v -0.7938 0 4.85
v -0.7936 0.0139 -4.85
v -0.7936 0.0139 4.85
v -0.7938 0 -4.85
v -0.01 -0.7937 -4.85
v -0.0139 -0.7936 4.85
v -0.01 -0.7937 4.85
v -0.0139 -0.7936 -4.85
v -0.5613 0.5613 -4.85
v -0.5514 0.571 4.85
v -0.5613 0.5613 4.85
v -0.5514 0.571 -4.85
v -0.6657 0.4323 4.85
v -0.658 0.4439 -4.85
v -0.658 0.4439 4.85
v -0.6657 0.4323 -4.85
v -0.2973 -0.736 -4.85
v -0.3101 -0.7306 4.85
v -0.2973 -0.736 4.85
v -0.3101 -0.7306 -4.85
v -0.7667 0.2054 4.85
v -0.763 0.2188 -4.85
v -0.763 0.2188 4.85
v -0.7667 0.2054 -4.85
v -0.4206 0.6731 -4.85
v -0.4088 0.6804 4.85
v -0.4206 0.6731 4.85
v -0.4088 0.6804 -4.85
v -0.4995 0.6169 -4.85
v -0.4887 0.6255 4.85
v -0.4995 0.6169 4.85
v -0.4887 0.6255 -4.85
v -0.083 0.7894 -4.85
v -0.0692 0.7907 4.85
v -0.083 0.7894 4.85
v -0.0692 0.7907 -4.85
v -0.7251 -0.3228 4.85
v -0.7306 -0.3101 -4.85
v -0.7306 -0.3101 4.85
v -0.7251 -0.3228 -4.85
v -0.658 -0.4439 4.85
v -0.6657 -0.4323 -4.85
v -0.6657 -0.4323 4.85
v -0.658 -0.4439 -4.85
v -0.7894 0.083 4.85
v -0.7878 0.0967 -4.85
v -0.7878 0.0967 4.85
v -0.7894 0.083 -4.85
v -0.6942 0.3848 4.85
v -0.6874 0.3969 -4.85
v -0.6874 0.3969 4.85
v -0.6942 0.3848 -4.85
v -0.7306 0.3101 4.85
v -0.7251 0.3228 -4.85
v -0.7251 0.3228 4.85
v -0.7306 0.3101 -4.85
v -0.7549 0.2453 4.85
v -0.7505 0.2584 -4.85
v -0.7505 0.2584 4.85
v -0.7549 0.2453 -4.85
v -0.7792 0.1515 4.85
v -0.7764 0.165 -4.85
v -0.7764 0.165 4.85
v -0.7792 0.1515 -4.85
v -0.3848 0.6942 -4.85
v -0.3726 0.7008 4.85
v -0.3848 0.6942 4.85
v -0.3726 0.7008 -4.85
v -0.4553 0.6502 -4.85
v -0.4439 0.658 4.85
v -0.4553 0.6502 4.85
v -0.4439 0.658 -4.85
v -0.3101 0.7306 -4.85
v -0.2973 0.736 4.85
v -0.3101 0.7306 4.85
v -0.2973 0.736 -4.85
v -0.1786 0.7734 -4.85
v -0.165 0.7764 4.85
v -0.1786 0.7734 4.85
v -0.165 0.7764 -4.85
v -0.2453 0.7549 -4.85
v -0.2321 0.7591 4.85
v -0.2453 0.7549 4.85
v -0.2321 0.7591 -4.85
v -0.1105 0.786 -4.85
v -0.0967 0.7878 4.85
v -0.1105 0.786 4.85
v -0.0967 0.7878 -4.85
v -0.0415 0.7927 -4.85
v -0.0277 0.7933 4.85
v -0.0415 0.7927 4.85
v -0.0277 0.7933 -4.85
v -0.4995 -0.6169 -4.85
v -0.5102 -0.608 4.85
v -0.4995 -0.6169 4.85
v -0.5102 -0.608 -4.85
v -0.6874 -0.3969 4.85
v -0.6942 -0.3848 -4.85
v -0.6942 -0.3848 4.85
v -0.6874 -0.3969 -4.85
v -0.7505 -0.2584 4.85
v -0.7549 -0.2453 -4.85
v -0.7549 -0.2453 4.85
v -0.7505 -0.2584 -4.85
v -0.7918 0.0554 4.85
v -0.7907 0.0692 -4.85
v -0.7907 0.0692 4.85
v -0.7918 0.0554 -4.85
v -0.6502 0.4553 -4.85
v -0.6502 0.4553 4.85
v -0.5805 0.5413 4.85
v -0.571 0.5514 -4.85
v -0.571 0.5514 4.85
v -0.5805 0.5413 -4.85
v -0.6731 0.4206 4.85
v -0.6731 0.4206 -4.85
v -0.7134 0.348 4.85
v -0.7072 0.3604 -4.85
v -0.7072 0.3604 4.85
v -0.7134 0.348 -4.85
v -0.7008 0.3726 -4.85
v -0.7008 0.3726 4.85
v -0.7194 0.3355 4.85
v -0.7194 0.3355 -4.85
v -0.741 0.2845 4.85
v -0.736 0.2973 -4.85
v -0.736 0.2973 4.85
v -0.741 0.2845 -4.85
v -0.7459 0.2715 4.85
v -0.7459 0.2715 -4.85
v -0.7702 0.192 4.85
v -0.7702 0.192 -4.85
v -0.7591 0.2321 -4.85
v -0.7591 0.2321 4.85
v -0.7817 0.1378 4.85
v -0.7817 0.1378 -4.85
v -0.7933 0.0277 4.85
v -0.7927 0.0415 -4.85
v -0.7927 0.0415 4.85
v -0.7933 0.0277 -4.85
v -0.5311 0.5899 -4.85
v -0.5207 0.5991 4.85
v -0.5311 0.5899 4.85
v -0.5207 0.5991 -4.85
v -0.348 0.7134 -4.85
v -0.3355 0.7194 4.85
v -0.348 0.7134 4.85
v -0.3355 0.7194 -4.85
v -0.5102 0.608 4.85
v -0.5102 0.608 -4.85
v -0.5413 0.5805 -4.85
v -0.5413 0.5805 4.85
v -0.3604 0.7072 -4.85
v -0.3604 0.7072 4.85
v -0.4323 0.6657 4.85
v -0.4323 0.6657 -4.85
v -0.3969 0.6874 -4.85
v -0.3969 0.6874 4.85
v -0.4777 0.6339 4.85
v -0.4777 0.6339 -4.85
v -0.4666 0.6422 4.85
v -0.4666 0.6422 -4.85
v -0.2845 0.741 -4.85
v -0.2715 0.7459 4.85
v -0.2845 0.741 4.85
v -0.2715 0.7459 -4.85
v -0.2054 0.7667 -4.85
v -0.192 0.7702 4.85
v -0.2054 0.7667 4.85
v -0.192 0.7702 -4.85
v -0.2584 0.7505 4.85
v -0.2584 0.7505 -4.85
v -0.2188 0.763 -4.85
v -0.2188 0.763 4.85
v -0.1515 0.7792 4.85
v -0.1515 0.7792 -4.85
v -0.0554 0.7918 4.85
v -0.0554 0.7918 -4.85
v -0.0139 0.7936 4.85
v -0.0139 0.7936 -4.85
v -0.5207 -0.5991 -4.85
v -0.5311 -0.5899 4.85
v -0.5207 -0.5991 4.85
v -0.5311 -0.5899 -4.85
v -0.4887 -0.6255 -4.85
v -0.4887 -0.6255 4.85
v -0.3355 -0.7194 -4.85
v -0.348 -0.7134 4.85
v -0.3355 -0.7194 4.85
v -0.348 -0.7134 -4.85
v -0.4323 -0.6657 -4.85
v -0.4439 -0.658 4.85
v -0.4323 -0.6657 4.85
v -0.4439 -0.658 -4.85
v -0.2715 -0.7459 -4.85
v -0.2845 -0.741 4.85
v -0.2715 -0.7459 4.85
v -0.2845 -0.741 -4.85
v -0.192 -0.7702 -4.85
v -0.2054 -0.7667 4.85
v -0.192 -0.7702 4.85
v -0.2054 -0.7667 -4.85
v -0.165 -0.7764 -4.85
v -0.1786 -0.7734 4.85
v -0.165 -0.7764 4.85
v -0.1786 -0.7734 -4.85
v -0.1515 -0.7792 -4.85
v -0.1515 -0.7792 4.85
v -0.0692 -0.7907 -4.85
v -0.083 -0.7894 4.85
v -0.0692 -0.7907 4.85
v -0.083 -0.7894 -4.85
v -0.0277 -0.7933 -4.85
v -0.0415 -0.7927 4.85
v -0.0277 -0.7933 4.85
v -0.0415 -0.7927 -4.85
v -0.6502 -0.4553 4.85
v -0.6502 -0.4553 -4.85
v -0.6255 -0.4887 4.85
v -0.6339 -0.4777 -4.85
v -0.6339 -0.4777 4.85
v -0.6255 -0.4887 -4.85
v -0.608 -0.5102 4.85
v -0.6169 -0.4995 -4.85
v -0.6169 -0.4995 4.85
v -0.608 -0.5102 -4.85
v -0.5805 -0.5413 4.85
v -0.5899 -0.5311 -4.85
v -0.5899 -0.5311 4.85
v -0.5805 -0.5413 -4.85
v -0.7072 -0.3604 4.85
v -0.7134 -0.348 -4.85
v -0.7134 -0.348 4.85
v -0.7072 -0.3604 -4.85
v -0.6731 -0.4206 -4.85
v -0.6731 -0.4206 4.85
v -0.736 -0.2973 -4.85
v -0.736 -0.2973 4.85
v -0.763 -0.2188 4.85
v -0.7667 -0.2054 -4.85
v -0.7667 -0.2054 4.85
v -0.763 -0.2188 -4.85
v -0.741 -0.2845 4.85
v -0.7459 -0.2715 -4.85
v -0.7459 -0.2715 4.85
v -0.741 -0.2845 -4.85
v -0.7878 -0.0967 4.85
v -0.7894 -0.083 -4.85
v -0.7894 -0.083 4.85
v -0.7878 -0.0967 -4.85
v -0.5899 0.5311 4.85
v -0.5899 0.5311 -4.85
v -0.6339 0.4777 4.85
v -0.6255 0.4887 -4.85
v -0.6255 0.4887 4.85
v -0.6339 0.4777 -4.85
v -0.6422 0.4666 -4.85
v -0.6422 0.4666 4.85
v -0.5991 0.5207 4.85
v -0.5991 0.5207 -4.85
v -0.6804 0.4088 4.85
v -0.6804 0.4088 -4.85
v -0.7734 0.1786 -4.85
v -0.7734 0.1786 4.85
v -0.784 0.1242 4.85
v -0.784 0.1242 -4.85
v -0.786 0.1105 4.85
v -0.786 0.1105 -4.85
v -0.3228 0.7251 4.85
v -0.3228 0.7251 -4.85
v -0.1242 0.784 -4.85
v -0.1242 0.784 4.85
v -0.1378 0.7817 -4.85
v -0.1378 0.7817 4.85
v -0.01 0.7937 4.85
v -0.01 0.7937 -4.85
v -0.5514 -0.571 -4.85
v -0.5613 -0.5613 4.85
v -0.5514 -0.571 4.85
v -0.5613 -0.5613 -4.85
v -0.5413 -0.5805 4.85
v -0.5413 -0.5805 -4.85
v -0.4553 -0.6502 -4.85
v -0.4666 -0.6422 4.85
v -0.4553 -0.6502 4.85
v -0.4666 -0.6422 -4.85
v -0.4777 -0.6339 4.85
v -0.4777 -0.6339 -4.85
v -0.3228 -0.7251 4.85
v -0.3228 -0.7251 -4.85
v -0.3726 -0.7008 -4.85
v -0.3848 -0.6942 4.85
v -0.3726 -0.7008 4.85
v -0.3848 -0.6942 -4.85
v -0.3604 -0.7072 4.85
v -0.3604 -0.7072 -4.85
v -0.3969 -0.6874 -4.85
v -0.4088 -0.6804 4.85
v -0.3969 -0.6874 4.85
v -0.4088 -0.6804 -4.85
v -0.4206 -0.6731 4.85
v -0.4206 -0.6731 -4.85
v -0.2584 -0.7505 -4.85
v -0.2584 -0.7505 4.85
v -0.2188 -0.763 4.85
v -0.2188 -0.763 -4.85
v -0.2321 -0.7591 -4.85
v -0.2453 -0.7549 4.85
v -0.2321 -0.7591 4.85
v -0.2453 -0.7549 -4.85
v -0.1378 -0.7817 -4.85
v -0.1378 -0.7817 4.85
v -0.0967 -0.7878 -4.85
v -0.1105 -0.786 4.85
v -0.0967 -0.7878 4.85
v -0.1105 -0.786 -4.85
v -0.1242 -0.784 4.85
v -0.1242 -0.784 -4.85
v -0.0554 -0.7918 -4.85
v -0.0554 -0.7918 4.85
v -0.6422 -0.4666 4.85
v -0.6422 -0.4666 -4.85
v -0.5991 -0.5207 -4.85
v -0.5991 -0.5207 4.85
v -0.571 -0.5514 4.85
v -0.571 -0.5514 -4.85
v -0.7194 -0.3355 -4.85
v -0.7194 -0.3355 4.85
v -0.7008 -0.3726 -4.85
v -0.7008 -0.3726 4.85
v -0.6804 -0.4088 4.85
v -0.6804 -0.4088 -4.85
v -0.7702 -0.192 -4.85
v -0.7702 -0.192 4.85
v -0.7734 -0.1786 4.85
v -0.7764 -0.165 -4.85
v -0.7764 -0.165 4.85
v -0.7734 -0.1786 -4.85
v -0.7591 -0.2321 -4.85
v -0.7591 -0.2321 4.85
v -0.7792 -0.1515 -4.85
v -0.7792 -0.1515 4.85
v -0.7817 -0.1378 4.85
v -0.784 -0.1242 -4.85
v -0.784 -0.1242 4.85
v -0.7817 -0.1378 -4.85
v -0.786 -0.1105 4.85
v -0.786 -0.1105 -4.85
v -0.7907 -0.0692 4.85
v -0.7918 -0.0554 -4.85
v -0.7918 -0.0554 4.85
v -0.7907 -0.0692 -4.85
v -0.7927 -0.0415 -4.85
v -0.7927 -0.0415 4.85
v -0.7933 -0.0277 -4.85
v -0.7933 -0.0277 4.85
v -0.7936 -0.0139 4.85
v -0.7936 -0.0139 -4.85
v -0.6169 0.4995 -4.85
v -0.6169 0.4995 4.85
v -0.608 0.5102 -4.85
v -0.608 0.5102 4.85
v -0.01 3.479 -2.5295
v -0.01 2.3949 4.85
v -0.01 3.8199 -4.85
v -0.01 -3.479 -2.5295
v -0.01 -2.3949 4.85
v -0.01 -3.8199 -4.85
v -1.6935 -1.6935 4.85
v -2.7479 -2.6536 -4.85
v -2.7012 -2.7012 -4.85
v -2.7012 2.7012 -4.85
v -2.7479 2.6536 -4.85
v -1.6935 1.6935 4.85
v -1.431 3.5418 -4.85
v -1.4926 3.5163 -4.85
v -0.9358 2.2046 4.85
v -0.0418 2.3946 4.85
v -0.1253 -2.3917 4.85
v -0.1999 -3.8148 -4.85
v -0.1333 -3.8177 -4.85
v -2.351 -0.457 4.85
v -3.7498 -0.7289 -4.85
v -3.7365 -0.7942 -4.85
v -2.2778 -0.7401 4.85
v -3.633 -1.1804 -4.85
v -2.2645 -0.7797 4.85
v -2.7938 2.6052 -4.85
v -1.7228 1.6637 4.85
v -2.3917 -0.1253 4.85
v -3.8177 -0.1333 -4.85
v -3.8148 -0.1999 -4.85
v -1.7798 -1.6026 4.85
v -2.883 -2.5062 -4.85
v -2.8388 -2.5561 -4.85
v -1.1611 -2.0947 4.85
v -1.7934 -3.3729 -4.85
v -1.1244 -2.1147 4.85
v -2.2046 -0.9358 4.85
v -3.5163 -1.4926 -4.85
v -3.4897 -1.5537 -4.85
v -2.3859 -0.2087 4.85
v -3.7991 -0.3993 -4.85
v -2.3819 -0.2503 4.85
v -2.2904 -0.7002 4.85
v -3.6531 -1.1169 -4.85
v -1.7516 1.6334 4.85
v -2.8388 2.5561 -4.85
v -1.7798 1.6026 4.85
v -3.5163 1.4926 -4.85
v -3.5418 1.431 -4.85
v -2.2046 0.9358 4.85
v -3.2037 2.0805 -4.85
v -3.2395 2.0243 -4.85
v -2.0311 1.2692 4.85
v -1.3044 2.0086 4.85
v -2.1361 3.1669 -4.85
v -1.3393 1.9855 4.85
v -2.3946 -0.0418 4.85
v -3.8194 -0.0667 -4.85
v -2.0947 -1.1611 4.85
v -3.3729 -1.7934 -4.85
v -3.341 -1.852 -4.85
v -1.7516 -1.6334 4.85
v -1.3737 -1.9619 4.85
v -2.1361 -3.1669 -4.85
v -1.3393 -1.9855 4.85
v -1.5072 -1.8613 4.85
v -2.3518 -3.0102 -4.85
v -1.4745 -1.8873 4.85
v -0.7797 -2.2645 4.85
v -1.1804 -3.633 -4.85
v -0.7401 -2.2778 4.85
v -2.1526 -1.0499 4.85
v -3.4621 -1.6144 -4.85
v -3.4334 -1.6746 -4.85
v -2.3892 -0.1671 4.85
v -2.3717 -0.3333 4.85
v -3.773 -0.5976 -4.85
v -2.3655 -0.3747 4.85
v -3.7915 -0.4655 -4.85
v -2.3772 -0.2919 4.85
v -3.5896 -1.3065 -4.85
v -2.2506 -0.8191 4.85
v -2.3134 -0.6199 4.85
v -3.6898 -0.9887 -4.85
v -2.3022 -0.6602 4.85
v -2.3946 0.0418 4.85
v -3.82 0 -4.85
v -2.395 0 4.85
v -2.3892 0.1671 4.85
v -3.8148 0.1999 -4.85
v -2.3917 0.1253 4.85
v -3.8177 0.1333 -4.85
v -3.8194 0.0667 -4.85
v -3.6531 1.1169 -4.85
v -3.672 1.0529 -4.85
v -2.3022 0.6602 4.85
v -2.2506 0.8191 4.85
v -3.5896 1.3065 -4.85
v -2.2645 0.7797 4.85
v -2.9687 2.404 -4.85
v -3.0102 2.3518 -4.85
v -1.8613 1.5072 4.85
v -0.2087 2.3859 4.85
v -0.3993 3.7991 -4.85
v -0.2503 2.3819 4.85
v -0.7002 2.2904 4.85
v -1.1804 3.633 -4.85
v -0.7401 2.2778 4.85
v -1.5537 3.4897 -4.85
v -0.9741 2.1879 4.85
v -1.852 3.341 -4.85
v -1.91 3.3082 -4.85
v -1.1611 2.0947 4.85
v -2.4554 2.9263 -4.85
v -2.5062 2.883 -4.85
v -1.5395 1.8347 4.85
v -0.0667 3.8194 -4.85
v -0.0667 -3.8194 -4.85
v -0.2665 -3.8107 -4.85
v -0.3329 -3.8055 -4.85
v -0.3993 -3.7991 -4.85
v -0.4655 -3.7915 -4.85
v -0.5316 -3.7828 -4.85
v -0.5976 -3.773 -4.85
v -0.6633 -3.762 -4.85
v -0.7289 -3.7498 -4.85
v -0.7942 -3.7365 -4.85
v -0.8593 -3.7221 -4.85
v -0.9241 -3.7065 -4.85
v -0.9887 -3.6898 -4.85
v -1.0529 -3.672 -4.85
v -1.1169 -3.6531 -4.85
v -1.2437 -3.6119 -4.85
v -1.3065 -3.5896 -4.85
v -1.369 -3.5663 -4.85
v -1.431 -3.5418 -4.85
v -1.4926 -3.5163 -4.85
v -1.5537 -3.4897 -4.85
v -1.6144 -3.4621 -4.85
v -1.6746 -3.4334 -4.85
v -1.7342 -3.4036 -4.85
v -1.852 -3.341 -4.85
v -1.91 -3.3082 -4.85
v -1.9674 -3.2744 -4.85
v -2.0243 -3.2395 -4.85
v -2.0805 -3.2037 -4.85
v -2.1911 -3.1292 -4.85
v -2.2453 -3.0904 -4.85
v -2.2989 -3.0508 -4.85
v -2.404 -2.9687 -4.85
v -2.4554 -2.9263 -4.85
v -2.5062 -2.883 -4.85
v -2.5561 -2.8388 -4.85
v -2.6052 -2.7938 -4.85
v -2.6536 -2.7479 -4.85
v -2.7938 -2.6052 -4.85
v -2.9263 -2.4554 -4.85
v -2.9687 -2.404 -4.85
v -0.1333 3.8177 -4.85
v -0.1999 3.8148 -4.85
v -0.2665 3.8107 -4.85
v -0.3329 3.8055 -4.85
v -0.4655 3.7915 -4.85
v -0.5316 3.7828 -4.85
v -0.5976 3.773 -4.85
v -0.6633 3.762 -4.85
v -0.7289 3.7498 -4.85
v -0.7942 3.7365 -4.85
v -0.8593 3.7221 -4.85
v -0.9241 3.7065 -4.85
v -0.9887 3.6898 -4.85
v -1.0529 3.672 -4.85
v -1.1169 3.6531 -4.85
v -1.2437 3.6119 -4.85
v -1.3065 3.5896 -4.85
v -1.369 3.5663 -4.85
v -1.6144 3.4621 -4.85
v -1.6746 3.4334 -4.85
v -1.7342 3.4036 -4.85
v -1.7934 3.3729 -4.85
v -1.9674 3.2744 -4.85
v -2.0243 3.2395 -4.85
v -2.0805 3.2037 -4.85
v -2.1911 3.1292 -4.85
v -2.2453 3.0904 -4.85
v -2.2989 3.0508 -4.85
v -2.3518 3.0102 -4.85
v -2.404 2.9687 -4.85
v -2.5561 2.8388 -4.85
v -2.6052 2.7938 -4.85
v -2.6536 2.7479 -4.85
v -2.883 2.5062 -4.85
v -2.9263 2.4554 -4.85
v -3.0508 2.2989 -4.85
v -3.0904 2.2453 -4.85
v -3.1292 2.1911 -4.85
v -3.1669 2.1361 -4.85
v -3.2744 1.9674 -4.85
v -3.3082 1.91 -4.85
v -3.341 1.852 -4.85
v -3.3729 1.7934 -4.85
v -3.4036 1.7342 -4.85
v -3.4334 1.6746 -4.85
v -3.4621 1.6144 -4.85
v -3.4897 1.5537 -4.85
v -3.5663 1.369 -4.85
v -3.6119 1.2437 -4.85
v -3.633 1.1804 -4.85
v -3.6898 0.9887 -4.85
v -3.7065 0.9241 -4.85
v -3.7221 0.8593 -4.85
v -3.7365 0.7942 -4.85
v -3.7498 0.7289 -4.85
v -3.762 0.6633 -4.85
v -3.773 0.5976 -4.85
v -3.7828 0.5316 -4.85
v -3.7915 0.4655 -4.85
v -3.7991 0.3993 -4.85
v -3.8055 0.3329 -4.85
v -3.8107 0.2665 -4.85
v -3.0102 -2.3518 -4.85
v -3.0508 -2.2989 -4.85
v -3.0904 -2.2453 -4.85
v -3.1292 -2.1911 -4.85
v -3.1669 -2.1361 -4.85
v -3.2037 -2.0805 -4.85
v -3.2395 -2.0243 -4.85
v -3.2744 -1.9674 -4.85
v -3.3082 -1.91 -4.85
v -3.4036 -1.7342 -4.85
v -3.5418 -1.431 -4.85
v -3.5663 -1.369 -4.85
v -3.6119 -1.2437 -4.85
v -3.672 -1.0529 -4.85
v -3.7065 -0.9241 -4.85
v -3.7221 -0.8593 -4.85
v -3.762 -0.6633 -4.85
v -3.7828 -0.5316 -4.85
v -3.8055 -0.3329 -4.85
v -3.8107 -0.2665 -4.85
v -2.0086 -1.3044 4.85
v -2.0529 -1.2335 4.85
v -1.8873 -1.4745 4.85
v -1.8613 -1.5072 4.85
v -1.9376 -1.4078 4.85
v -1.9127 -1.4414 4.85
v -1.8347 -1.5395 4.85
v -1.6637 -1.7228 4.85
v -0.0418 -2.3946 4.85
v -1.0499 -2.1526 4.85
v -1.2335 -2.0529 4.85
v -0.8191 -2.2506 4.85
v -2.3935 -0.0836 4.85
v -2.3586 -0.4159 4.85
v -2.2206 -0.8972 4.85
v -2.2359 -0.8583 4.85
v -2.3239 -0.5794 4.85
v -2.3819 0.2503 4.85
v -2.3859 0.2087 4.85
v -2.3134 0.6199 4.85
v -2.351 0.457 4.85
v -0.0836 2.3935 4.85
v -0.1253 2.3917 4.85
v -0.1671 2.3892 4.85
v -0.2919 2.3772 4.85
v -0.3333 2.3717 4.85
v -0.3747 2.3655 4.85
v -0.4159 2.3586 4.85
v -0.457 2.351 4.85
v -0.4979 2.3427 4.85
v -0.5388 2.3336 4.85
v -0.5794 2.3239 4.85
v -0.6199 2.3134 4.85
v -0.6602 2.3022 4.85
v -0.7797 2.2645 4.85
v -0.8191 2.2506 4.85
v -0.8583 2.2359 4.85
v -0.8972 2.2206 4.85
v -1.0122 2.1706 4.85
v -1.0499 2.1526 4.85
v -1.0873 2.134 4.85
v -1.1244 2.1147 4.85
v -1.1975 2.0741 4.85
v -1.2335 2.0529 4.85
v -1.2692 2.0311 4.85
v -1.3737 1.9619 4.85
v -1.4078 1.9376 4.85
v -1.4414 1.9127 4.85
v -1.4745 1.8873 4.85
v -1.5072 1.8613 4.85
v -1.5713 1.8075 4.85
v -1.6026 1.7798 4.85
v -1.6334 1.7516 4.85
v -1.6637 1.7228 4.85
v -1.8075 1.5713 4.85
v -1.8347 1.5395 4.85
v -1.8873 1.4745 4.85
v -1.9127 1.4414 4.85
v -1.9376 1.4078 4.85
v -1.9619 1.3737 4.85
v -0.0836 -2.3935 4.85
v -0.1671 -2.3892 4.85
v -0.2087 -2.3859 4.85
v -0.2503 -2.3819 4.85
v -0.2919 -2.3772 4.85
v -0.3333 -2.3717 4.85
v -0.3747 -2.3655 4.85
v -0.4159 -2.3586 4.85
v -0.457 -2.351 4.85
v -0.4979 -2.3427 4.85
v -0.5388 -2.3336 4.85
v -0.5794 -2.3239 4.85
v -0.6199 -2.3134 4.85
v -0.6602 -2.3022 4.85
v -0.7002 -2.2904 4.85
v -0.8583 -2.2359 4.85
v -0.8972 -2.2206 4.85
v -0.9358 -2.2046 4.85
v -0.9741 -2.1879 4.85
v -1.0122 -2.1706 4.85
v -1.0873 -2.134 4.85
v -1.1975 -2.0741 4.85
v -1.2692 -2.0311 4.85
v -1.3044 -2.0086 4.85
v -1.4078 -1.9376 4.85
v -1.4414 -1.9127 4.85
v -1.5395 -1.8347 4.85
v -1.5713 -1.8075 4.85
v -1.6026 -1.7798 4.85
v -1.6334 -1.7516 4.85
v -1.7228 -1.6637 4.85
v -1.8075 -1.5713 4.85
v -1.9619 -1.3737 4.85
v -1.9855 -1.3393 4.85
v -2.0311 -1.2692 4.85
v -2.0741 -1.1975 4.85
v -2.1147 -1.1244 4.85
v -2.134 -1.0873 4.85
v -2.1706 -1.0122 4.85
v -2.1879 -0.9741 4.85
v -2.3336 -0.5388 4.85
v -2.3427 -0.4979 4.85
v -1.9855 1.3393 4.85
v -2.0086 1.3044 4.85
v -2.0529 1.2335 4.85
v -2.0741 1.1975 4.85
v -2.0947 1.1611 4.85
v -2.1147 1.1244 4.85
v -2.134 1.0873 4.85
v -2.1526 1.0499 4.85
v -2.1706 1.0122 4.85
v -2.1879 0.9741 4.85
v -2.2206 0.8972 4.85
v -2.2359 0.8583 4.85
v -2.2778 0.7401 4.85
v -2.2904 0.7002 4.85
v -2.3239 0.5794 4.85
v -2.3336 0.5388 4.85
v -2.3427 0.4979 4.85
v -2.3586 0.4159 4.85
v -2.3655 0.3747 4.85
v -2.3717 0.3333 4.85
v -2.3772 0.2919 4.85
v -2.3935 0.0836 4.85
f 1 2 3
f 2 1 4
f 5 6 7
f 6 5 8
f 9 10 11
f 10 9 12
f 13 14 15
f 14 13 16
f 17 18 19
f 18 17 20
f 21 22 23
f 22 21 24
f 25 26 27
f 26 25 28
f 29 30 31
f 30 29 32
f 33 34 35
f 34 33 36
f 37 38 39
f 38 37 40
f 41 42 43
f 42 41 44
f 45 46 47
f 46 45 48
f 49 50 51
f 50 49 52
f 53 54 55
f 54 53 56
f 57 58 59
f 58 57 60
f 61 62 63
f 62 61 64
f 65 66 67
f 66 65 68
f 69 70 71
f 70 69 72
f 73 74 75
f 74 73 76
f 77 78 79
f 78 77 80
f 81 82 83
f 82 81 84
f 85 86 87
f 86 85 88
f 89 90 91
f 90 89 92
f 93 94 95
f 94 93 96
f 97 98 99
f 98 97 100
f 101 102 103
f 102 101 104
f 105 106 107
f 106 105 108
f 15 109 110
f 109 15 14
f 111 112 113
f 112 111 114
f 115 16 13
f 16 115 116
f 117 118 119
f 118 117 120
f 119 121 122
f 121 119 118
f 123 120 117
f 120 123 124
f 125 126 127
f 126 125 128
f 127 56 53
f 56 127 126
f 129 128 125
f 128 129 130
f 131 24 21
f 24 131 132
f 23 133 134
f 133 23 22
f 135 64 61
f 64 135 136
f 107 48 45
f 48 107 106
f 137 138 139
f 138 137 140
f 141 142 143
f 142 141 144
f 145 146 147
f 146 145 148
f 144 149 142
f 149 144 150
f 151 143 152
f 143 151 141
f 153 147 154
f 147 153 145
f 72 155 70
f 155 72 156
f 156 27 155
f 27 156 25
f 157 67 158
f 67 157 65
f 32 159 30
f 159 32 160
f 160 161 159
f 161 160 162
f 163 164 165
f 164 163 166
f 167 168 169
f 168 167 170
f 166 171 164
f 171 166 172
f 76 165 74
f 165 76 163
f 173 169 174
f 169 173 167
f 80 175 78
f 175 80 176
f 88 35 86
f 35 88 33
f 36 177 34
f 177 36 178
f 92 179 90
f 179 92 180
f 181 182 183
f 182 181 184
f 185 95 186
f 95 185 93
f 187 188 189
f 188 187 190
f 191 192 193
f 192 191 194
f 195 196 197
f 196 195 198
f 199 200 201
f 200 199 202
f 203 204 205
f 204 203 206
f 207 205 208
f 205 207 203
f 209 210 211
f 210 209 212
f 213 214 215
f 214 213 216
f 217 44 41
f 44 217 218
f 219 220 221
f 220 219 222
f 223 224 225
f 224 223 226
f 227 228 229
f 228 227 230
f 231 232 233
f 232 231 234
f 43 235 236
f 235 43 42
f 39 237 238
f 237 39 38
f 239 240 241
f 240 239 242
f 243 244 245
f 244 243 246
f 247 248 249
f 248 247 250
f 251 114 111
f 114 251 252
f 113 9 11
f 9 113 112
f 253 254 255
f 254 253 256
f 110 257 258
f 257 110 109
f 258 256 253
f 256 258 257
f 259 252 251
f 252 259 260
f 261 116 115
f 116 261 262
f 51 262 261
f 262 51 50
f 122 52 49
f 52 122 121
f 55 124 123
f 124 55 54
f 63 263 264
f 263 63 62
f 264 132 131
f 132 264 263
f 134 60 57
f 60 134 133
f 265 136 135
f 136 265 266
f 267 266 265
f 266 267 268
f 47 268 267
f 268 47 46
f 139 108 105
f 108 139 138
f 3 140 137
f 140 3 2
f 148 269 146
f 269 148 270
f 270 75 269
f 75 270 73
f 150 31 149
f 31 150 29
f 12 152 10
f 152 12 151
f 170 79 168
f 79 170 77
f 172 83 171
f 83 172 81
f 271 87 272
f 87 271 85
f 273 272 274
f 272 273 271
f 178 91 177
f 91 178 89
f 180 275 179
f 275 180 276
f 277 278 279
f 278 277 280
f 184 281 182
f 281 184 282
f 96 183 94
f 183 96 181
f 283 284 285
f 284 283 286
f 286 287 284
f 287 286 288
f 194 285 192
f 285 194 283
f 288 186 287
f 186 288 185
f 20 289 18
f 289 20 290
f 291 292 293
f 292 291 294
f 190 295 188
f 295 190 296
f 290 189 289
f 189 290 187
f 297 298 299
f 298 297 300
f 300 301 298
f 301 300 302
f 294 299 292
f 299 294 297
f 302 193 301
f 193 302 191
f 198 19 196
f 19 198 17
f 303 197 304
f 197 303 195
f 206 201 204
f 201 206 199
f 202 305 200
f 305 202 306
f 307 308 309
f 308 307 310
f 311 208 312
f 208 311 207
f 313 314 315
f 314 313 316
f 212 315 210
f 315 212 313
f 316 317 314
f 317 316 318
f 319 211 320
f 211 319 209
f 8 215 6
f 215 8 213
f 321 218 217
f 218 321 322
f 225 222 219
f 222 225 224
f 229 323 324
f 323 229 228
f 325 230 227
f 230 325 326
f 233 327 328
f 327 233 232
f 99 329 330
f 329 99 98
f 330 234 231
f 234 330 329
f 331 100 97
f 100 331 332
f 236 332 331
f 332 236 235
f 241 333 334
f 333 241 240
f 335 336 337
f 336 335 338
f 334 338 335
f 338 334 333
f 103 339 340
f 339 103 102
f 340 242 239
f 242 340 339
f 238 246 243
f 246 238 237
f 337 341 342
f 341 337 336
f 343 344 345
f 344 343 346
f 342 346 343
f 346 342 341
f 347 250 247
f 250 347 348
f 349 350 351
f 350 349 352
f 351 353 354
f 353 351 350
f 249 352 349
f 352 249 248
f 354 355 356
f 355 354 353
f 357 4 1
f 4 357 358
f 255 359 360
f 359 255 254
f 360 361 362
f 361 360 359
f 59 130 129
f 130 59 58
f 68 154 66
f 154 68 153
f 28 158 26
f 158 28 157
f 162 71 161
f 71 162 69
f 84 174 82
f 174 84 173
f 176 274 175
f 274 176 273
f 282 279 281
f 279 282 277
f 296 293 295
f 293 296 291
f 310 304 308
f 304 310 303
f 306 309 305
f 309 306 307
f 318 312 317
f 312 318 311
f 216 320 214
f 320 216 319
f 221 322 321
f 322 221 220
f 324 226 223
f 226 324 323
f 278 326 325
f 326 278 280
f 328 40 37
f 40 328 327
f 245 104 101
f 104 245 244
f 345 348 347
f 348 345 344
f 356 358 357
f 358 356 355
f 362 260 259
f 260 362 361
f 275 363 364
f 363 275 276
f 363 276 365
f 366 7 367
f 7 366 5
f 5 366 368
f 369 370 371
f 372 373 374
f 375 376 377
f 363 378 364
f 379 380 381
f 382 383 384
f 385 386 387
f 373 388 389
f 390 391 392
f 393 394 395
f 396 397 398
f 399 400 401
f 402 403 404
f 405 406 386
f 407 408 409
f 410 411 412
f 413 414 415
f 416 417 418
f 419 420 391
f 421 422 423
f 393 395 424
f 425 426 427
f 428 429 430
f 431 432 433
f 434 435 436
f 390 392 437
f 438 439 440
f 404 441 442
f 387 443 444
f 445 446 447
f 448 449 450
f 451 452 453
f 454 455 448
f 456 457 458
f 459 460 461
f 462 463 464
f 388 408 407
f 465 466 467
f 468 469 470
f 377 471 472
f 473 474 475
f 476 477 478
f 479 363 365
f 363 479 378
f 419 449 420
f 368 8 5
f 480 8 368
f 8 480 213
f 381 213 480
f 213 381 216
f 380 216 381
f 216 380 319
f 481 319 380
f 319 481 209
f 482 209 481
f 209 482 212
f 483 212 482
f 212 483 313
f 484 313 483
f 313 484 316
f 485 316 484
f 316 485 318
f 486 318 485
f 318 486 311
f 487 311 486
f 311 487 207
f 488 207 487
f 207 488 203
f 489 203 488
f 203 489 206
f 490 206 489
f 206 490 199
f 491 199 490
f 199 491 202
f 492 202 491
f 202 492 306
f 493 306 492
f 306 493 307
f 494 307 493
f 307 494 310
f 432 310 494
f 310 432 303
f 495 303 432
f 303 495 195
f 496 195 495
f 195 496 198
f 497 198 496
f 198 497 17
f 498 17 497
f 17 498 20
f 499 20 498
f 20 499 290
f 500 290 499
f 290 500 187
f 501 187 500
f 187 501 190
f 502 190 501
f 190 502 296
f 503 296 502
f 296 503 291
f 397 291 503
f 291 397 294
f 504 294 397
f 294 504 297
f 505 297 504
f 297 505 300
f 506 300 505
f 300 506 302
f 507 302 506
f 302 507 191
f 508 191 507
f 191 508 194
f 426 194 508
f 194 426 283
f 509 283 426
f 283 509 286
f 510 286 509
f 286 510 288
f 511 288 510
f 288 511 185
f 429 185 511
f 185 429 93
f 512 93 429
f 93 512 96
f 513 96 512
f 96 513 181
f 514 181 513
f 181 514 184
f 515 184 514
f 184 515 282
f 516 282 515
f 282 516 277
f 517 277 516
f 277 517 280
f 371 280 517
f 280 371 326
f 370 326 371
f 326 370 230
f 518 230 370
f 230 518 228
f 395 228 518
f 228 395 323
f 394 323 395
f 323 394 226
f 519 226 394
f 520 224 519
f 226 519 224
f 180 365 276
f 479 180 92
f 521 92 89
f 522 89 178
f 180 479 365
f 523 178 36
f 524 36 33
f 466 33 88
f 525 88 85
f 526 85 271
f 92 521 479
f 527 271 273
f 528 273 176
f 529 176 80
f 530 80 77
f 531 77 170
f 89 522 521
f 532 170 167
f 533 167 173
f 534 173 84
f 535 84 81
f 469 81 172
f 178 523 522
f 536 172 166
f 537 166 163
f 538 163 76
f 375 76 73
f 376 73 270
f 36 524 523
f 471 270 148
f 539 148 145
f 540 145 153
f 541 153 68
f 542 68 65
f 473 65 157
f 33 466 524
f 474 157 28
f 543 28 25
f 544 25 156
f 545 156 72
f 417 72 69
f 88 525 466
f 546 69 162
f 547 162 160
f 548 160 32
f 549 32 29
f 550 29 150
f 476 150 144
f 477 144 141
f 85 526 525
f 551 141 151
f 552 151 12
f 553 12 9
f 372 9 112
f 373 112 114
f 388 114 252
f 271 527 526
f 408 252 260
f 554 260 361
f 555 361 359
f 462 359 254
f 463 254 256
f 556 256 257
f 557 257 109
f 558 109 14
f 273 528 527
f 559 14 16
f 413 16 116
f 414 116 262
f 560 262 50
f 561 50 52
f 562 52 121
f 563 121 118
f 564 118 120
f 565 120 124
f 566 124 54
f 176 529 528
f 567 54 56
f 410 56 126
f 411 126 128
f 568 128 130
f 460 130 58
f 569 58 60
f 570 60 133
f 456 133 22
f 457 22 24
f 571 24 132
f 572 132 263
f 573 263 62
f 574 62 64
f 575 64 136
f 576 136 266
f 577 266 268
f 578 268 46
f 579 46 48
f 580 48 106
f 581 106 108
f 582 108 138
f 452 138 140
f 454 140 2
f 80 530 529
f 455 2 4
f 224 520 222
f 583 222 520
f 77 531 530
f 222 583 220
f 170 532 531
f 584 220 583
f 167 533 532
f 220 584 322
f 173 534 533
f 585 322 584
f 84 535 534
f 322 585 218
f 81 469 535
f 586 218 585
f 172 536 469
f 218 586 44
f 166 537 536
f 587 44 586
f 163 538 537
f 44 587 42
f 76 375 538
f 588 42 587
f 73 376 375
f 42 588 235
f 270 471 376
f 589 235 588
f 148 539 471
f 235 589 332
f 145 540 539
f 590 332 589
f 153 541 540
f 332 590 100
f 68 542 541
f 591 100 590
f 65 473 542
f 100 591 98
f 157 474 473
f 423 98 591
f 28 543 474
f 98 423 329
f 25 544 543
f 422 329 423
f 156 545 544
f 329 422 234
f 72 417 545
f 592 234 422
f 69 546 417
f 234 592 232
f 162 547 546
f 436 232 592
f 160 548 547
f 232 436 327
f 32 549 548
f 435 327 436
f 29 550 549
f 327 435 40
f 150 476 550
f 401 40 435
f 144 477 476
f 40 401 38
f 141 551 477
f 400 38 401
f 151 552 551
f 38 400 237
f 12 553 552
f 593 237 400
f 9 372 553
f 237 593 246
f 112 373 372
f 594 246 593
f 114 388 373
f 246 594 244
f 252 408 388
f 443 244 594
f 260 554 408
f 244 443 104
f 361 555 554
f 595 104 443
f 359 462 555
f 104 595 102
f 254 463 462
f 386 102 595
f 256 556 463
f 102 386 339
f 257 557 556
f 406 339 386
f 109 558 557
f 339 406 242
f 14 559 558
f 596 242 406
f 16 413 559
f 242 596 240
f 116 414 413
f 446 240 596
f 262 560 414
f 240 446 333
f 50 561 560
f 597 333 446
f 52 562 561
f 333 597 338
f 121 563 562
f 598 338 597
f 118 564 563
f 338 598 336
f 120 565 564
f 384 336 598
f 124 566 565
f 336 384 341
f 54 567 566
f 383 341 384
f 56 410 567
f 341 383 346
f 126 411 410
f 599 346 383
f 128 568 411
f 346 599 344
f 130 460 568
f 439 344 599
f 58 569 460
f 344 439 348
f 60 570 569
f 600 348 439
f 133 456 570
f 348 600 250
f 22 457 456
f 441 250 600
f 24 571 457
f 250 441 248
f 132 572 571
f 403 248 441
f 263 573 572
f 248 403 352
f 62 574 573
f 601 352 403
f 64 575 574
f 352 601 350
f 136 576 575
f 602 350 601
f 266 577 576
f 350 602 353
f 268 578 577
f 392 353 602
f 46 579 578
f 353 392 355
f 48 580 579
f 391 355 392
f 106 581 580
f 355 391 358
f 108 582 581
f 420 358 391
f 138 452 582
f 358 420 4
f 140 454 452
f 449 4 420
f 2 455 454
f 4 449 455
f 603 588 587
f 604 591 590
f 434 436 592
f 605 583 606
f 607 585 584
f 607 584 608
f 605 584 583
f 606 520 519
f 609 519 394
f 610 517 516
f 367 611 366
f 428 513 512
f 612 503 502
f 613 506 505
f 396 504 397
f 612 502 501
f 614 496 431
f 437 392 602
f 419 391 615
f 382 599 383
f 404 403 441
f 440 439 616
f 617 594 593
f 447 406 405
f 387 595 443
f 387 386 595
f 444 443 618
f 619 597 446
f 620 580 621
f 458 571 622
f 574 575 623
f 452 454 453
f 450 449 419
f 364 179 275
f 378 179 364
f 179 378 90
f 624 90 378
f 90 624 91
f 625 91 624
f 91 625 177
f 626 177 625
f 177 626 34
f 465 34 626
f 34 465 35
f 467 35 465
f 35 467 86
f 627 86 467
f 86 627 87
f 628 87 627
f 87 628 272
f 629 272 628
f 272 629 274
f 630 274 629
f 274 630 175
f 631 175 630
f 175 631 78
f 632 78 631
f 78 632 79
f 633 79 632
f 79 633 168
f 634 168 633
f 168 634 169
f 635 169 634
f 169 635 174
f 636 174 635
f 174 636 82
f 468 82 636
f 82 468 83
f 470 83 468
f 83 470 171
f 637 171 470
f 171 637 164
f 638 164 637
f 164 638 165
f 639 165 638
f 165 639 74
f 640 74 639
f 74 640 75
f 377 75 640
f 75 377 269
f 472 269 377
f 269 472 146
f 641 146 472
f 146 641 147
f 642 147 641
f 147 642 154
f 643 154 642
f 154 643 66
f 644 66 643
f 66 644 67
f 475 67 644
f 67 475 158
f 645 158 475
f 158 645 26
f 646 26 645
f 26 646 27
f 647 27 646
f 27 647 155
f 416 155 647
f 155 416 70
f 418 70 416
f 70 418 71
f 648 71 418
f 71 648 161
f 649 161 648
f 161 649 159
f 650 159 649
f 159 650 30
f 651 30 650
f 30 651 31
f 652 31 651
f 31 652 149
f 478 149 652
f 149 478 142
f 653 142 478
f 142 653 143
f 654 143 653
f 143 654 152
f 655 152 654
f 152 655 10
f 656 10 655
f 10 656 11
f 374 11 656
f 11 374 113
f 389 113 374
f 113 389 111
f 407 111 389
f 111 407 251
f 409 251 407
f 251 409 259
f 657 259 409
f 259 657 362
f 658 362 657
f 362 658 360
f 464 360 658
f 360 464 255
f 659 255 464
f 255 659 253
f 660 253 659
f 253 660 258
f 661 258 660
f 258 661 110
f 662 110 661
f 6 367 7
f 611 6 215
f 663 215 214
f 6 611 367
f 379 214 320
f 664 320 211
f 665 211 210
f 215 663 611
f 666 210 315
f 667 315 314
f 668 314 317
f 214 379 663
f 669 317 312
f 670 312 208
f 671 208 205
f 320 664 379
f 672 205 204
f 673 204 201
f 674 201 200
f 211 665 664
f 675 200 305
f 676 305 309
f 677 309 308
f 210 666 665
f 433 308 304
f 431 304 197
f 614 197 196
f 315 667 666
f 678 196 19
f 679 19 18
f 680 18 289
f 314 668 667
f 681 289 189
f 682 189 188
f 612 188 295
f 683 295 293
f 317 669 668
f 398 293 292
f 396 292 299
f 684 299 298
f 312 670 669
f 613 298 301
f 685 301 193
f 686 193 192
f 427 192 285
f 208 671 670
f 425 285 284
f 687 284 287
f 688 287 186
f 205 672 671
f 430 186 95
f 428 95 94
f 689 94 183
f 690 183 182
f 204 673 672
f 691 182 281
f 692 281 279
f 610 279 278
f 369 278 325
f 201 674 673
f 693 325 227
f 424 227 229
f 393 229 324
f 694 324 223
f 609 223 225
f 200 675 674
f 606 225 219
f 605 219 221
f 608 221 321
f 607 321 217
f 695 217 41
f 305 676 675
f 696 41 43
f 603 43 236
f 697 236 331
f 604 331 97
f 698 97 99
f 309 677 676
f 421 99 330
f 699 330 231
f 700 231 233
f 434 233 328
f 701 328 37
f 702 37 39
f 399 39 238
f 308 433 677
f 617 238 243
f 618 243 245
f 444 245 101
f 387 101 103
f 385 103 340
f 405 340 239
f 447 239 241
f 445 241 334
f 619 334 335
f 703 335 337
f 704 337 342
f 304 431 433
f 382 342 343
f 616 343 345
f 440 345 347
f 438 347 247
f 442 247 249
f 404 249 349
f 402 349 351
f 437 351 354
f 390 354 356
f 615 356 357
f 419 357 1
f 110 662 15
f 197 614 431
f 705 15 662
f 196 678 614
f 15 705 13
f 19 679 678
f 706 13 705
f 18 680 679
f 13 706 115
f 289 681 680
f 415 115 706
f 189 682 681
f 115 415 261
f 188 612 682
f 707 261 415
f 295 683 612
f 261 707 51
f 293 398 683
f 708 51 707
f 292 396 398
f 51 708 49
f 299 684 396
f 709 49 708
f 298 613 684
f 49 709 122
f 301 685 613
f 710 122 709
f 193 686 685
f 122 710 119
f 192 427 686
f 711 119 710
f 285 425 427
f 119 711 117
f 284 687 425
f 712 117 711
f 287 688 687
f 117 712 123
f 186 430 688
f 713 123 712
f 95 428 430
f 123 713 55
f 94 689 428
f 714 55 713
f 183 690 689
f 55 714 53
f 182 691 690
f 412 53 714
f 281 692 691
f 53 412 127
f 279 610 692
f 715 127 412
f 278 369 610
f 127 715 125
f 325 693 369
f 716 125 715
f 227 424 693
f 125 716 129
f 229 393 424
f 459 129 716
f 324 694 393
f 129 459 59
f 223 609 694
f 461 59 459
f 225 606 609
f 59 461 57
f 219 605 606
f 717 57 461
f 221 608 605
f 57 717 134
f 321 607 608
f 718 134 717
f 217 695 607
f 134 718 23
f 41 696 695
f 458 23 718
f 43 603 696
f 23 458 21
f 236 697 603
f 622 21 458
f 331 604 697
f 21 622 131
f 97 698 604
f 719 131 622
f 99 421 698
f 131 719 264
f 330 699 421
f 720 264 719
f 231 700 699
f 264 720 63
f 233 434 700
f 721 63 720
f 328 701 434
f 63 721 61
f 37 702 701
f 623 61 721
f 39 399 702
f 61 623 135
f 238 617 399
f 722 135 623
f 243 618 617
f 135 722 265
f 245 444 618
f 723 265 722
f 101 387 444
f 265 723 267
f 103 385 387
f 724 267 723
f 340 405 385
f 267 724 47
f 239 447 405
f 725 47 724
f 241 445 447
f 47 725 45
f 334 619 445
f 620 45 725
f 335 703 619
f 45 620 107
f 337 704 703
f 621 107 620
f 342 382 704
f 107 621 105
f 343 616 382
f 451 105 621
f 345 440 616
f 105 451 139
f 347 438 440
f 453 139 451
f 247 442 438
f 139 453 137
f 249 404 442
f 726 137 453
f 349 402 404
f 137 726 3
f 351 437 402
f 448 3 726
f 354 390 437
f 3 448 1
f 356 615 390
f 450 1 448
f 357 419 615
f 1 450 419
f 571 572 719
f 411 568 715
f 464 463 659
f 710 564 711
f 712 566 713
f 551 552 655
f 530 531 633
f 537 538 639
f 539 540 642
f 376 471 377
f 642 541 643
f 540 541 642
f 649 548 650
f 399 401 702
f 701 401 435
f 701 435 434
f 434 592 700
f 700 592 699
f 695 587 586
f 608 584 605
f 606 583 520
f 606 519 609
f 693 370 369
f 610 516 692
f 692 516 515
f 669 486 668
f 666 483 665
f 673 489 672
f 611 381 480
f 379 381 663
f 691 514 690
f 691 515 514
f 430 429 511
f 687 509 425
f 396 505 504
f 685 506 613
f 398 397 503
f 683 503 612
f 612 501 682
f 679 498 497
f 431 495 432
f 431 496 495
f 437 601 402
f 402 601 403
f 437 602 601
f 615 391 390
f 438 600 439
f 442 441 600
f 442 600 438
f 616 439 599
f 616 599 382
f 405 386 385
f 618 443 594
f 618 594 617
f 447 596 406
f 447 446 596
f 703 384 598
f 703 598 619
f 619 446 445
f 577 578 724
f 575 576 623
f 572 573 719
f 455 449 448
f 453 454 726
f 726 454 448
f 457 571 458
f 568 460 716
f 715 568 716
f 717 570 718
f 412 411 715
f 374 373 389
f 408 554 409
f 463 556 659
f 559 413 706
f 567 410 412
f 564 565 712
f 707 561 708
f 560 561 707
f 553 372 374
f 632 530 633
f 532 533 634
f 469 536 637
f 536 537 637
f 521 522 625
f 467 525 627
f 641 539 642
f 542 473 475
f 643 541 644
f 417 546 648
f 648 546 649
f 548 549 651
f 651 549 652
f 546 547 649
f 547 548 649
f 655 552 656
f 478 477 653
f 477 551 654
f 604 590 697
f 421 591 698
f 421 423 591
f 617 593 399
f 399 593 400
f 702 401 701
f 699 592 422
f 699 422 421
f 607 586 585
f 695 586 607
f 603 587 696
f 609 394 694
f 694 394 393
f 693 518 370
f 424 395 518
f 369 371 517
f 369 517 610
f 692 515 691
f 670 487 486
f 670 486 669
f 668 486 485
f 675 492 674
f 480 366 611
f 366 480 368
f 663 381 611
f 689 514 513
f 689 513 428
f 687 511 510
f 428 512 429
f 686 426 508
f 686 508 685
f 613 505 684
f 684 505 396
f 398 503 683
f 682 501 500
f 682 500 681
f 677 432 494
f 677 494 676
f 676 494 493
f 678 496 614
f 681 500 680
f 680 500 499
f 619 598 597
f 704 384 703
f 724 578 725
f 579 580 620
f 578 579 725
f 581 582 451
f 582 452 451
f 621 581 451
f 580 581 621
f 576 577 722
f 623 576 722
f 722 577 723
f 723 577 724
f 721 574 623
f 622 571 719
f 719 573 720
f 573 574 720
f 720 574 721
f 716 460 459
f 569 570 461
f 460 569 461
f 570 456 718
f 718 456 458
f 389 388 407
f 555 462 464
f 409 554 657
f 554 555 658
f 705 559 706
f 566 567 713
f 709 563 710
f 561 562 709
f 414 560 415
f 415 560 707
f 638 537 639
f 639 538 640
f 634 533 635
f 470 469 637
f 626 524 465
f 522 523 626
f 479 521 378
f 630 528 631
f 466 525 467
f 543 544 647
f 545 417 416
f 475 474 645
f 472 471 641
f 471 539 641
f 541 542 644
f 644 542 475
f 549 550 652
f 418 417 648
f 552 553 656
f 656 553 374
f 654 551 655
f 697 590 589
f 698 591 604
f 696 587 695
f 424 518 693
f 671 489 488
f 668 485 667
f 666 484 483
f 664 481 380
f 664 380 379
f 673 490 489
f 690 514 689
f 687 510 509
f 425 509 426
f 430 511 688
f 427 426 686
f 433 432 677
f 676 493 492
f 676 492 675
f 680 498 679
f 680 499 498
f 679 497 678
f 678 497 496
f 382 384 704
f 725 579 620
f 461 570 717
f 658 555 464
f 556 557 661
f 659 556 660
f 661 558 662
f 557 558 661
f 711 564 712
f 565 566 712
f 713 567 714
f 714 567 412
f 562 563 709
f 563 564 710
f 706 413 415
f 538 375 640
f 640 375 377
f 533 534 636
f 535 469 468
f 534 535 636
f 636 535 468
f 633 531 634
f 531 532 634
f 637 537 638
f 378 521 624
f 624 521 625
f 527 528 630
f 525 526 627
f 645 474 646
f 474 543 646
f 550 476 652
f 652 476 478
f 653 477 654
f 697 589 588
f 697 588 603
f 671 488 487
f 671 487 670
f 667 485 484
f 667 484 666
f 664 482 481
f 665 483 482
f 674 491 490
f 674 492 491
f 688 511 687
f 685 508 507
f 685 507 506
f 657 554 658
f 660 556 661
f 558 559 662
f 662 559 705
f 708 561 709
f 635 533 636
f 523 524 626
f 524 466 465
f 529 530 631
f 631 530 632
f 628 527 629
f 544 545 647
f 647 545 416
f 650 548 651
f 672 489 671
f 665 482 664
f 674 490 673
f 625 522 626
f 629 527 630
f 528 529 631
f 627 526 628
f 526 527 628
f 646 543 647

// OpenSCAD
// drill adapter for small drill bits and Cartesian (Kopf) stereotaxic drill
// printed with Asiga PICO2 39 µm 385 nm (UV)

drill_diam = 1.5875; // 1/16 inch, common sizes are 1/8, 3/32 and 1/16

difference () {
    cylinder (h=9.7,d1=7.64,d2=4.79,center=true,$fn=360);
    union () {
        cylinder (h=10,d=drill_diam,center=true,$fn=360);
        translate ([-0.01,-5,-5]) cube (10);
    }
}
